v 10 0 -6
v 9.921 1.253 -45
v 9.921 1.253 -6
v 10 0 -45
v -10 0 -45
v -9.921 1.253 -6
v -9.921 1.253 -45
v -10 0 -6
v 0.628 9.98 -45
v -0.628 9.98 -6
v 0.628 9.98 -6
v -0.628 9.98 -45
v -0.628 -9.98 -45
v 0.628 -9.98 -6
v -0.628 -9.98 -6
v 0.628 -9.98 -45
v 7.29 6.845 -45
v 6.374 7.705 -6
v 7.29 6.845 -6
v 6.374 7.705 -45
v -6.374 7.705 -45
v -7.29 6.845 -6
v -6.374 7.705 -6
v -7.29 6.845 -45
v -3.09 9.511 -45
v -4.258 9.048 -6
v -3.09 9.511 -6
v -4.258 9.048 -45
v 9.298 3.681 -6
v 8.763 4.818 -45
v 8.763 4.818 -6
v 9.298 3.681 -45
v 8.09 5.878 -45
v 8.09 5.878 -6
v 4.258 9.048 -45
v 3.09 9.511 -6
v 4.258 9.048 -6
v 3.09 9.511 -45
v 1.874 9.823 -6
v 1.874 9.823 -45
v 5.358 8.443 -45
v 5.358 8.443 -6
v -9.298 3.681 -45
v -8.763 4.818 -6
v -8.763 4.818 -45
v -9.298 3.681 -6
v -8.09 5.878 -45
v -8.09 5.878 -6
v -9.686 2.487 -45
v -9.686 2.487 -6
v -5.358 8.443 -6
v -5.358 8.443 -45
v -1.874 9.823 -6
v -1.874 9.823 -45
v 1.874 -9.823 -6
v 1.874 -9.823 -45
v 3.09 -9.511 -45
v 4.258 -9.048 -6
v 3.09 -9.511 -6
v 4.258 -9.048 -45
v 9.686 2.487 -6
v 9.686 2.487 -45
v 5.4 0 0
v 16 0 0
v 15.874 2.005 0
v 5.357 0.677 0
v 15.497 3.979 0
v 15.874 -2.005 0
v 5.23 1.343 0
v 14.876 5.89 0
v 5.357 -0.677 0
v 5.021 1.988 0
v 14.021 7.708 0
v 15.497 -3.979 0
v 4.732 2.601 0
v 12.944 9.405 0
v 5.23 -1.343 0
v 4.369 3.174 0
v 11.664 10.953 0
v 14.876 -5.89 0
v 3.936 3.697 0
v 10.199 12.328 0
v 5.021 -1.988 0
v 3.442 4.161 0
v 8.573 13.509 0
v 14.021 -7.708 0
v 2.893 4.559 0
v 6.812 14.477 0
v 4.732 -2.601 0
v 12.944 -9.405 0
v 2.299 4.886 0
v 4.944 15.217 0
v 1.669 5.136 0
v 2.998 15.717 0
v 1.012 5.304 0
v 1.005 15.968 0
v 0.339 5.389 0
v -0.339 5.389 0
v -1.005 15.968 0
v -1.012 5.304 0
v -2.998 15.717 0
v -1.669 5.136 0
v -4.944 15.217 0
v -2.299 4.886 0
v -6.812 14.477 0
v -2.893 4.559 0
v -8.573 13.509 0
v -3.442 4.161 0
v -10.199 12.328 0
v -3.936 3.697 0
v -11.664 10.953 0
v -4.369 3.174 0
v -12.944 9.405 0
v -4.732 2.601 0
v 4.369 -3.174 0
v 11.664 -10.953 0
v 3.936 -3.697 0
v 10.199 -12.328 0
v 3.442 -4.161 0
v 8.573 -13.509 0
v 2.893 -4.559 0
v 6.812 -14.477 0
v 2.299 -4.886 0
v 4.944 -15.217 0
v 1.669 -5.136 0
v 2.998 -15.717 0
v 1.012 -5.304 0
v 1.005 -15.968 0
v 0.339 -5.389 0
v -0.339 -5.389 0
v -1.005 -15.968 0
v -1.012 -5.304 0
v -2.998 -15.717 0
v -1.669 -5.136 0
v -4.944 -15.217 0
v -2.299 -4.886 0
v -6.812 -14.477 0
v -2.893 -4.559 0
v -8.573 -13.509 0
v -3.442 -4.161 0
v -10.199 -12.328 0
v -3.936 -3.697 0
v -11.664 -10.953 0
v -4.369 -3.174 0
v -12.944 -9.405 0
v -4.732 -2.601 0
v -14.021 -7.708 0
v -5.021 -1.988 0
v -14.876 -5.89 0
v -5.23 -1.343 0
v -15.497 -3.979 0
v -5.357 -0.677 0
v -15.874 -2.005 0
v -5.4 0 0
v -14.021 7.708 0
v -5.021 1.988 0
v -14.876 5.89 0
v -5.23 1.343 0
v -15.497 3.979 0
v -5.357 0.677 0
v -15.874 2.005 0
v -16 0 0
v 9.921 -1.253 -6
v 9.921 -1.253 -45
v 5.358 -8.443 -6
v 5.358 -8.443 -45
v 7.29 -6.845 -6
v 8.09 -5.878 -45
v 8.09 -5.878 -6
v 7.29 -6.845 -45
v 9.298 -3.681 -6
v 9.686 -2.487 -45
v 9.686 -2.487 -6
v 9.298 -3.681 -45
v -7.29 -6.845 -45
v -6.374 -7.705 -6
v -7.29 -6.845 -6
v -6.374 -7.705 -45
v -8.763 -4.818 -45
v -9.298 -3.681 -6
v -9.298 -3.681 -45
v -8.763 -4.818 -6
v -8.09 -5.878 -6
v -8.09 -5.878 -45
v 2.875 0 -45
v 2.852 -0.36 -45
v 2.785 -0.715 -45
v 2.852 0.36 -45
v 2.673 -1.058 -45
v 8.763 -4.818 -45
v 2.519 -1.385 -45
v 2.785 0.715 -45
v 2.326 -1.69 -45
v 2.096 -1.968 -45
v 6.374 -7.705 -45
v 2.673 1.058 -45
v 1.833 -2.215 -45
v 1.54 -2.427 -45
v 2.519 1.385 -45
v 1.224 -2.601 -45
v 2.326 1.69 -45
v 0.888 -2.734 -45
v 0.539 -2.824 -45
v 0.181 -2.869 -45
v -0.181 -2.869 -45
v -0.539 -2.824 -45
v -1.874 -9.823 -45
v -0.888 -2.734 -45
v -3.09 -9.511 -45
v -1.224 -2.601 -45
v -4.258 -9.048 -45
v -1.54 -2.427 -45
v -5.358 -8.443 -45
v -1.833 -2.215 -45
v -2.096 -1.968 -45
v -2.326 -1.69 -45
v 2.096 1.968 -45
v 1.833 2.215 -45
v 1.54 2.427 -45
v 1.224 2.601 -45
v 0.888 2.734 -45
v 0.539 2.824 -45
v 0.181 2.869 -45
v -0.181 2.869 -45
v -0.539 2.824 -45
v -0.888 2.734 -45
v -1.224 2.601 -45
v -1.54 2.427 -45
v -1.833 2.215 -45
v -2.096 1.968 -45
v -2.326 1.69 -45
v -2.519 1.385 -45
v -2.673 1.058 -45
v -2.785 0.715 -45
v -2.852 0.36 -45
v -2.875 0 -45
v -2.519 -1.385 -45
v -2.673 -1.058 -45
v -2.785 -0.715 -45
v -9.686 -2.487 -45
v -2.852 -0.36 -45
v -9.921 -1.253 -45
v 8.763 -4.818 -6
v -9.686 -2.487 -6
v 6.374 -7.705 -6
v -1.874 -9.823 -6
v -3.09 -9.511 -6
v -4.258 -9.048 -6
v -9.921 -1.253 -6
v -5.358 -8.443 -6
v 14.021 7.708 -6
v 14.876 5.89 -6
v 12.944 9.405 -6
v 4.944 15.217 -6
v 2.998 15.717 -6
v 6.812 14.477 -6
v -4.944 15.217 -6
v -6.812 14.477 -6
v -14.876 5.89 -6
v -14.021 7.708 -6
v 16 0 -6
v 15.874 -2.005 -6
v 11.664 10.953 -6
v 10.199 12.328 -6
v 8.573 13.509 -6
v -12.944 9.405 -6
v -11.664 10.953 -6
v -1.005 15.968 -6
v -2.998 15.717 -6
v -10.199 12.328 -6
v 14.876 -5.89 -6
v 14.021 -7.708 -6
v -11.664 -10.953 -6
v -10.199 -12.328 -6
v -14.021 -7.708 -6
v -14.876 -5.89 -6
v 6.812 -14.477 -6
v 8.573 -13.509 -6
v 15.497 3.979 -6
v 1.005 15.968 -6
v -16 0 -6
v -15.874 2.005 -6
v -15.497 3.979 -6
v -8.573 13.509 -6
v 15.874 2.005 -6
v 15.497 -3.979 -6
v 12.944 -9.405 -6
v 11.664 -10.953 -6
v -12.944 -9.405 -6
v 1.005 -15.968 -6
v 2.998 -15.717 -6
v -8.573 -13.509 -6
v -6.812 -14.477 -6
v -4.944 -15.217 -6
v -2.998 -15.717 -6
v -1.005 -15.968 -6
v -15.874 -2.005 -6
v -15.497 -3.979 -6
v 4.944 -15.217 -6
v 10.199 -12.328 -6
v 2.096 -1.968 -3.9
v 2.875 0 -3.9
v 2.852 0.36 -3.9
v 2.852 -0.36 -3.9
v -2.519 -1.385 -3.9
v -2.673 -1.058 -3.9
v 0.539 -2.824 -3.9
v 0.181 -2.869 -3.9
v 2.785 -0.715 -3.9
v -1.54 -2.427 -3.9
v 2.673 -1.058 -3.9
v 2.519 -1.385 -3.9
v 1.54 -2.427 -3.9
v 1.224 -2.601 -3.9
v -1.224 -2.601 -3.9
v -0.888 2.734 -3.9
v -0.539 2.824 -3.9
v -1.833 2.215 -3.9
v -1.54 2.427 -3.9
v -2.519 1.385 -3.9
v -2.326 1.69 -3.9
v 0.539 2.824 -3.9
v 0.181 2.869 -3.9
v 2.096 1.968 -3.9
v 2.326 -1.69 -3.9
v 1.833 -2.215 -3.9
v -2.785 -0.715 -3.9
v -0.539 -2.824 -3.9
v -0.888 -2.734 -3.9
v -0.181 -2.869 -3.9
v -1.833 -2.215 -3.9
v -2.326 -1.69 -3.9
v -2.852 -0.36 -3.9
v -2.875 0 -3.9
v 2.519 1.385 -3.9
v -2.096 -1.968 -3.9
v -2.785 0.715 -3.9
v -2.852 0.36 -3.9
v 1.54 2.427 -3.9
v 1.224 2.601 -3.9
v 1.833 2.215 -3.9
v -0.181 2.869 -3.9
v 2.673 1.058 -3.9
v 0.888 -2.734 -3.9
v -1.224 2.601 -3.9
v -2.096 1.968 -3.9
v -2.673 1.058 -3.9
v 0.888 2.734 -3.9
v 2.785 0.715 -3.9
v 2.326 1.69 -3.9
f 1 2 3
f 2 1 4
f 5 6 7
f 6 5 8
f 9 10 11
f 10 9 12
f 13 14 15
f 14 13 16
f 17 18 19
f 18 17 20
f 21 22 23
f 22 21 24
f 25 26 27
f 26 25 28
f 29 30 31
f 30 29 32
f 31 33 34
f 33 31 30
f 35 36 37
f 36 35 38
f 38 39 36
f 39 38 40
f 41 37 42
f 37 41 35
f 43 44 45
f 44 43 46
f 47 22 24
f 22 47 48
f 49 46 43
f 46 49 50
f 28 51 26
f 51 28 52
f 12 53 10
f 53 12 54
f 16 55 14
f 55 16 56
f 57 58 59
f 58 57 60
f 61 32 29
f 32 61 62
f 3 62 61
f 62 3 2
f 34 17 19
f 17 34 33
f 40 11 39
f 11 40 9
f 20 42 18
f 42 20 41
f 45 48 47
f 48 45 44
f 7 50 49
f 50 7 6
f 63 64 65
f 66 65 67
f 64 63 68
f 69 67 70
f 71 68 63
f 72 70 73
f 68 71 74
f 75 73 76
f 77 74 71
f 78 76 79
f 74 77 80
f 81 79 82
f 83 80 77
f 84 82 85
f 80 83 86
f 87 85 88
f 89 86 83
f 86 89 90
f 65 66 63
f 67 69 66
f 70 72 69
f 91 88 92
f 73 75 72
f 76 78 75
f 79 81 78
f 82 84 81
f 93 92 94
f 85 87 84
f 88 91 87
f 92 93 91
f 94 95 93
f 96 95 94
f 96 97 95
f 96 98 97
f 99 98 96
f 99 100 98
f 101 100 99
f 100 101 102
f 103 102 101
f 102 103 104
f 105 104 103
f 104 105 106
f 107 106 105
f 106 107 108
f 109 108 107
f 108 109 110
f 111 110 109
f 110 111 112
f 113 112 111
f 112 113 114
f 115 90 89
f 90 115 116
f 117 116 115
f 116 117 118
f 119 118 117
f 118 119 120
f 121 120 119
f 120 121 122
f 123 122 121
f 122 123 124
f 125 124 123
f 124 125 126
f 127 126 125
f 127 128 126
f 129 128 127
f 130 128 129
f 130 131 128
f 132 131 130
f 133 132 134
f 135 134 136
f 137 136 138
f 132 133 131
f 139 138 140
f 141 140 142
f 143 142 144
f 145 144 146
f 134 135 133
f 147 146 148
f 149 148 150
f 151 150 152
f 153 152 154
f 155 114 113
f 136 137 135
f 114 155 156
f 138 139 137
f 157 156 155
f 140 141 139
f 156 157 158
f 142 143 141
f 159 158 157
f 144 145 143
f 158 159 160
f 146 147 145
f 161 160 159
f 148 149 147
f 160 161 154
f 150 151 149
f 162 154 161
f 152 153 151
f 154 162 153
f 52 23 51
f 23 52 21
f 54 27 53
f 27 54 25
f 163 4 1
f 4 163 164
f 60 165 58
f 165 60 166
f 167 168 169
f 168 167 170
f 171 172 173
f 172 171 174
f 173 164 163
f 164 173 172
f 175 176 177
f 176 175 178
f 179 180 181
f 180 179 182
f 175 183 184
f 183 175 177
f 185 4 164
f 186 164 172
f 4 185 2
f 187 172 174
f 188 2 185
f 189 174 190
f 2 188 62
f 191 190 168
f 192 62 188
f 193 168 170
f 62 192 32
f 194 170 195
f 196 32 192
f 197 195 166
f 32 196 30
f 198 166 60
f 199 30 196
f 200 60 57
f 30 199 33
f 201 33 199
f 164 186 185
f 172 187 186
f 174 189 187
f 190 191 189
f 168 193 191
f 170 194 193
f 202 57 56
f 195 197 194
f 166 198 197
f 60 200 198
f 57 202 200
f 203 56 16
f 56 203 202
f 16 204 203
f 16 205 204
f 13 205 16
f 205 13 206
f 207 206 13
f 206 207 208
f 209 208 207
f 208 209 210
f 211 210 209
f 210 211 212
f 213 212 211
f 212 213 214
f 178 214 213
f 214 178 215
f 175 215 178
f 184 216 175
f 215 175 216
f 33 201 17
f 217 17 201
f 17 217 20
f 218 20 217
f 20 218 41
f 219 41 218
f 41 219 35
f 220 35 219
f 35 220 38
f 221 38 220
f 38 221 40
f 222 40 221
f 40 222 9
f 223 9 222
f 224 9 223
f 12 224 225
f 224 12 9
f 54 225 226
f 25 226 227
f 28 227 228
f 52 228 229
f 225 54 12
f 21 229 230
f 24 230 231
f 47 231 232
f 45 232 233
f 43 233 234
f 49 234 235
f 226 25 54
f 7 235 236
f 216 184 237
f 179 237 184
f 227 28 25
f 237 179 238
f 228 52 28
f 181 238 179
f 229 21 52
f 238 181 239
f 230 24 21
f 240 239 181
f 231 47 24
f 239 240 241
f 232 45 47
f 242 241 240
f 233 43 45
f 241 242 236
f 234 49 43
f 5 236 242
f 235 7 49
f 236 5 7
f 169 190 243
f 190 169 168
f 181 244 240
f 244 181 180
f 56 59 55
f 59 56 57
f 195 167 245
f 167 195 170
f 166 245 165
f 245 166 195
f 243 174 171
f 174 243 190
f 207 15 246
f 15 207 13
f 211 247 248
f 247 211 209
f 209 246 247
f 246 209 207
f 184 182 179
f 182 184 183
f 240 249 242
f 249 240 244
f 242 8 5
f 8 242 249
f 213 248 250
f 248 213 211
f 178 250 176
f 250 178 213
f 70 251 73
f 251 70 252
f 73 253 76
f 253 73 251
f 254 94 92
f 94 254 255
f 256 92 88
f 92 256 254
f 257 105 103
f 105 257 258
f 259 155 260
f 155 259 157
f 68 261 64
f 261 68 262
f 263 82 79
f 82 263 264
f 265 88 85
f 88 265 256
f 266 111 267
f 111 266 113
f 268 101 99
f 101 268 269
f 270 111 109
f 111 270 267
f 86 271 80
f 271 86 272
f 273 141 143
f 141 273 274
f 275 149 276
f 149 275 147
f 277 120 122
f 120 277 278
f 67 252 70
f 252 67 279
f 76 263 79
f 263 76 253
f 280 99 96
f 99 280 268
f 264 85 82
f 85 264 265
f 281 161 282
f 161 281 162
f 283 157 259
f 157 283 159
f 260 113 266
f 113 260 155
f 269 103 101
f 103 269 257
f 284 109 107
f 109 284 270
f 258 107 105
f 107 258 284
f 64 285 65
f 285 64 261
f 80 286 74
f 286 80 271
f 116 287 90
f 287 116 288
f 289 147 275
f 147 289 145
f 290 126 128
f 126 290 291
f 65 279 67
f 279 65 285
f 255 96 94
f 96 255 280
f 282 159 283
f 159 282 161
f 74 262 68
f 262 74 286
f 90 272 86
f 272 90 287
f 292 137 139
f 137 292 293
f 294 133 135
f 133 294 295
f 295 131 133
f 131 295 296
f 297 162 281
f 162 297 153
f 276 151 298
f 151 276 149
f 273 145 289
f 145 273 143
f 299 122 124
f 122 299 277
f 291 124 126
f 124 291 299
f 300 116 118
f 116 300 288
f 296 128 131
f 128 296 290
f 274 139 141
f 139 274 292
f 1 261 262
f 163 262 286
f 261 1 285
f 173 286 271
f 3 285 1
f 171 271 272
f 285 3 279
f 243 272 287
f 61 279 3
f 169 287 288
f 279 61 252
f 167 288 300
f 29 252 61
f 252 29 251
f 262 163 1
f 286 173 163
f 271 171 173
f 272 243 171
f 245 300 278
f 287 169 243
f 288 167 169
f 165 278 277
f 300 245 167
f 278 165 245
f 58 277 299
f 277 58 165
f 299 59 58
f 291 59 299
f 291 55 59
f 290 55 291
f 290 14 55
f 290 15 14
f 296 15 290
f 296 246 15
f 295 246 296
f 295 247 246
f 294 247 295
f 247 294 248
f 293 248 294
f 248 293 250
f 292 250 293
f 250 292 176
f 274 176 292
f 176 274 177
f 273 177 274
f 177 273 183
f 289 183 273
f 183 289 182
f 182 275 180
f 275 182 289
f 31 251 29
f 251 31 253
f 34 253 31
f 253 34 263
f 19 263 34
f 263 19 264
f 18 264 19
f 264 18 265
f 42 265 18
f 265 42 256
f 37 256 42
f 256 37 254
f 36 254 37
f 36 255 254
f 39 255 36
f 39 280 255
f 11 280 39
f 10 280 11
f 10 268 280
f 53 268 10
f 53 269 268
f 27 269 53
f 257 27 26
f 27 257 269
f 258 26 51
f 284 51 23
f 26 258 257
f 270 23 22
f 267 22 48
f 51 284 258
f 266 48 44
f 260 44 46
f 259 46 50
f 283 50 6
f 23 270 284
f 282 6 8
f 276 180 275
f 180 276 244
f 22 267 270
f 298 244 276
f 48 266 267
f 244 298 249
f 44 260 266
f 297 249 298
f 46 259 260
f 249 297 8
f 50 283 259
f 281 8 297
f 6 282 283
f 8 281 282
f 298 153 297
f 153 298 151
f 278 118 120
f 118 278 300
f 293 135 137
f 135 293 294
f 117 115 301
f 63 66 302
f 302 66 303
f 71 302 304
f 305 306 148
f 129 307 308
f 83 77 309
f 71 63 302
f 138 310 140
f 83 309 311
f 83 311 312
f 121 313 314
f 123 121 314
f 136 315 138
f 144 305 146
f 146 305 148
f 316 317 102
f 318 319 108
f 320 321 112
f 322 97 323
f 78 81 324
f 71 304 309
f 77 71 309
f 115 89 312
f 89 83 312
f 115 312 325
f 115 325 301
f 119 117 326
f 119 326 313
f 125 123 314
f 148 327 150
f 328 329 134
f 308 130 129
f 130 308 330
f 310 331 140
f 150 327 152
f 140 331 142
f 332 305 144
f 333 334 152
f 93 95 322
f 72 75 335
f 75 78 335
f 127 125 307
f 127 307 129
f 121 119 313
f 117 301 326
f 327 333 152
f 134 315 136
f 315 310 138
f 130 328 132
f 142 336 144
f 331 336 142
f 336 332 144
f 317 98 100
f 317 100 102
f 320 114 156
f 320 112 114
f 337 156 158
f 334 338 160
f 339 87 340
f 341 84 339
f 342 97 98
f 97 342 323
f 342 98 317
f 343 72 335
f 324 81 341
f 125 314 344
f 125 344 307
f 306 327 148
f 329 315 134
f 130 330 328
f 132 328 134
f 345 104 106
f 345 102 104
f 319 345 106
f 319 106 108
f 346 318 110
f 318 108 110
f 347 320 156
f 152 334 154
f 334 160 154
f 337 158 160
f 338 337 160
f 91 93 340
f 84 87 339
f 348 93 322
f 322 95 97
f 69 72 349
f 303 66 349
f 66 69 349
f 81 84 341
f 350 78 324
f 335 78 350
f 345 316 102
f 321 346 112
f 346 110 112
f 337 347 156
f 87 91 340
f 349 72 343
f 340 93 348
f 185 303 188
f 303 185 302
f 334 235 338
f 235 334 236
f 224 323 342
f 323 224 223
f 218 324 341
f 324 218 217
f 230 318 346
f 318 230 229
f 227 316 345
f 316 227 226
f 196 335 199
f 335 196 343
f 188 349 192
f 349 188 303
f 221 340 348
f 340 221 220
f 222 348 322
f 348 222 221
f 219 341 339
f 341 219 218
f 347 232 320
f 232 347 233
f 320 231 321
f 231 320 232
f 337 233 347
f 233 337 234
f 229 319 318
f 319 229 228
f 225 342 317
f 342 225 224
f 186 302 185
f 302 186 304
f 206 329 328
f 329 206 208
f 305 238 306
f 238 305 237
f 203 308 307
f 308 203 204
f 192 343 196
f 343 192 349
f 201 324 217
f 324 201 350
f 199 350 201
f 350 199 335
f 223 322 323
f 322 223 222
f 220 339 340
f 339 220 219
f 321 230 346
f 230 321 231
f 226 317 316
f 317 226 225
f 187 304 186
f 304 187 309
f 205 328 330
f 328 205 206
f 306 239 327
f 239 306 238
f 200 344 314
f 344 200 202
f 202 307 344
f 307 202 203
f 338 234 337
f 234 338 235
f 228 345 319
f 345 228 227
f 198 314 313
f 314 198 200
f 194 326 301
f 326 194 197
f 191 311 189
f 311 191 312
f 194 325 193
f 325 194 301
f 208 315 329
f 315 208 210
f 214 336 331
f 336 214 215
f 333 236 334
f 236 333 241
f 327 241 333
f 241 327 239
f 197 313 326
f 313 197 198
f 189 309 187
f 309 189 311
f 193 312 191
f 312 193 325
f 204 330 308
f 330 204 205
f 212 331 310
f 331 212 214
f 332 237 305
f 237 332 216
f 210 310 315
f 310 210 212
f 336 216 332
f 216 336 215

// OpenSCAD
$fn = 50;


difference() {
	union() {
		translate(v = [0, 0, -45.0000000000]) {
			cylinder(h = 45, r = 10.0000000000);
		}
		translate(v = [0, 0, -6.0000000000]) {
			cylinder(h = 6, r = 16.0000000000);
		}
	}
	union() {
		translate(v = [0, 0, 0]) {
			rotate(a = [0, 0, 0]) {
				difference() {
					union() {
						#translate(v = [0, 0, -45.0000000000]) {
							cylinder(h = 45, r = 2.6000000000);
						}
						#translate(v = [0, 0, -3.9000000000]) {
							cylinder(h = 3.9000000000, r1 = 2.8750000000, r2 = 5.4000000000);
						}
						#translate(v = [0, 0, -45.0000000000]) {
							cylinder(h = 45, r = 2.8750000000);
						}
						#translate(v = [0, 0, -45.0000000000]) {
							cylinder(h = 45, r = 2.6000000000);
						}
					}
					union();
				}
			}
		}
	}
}
